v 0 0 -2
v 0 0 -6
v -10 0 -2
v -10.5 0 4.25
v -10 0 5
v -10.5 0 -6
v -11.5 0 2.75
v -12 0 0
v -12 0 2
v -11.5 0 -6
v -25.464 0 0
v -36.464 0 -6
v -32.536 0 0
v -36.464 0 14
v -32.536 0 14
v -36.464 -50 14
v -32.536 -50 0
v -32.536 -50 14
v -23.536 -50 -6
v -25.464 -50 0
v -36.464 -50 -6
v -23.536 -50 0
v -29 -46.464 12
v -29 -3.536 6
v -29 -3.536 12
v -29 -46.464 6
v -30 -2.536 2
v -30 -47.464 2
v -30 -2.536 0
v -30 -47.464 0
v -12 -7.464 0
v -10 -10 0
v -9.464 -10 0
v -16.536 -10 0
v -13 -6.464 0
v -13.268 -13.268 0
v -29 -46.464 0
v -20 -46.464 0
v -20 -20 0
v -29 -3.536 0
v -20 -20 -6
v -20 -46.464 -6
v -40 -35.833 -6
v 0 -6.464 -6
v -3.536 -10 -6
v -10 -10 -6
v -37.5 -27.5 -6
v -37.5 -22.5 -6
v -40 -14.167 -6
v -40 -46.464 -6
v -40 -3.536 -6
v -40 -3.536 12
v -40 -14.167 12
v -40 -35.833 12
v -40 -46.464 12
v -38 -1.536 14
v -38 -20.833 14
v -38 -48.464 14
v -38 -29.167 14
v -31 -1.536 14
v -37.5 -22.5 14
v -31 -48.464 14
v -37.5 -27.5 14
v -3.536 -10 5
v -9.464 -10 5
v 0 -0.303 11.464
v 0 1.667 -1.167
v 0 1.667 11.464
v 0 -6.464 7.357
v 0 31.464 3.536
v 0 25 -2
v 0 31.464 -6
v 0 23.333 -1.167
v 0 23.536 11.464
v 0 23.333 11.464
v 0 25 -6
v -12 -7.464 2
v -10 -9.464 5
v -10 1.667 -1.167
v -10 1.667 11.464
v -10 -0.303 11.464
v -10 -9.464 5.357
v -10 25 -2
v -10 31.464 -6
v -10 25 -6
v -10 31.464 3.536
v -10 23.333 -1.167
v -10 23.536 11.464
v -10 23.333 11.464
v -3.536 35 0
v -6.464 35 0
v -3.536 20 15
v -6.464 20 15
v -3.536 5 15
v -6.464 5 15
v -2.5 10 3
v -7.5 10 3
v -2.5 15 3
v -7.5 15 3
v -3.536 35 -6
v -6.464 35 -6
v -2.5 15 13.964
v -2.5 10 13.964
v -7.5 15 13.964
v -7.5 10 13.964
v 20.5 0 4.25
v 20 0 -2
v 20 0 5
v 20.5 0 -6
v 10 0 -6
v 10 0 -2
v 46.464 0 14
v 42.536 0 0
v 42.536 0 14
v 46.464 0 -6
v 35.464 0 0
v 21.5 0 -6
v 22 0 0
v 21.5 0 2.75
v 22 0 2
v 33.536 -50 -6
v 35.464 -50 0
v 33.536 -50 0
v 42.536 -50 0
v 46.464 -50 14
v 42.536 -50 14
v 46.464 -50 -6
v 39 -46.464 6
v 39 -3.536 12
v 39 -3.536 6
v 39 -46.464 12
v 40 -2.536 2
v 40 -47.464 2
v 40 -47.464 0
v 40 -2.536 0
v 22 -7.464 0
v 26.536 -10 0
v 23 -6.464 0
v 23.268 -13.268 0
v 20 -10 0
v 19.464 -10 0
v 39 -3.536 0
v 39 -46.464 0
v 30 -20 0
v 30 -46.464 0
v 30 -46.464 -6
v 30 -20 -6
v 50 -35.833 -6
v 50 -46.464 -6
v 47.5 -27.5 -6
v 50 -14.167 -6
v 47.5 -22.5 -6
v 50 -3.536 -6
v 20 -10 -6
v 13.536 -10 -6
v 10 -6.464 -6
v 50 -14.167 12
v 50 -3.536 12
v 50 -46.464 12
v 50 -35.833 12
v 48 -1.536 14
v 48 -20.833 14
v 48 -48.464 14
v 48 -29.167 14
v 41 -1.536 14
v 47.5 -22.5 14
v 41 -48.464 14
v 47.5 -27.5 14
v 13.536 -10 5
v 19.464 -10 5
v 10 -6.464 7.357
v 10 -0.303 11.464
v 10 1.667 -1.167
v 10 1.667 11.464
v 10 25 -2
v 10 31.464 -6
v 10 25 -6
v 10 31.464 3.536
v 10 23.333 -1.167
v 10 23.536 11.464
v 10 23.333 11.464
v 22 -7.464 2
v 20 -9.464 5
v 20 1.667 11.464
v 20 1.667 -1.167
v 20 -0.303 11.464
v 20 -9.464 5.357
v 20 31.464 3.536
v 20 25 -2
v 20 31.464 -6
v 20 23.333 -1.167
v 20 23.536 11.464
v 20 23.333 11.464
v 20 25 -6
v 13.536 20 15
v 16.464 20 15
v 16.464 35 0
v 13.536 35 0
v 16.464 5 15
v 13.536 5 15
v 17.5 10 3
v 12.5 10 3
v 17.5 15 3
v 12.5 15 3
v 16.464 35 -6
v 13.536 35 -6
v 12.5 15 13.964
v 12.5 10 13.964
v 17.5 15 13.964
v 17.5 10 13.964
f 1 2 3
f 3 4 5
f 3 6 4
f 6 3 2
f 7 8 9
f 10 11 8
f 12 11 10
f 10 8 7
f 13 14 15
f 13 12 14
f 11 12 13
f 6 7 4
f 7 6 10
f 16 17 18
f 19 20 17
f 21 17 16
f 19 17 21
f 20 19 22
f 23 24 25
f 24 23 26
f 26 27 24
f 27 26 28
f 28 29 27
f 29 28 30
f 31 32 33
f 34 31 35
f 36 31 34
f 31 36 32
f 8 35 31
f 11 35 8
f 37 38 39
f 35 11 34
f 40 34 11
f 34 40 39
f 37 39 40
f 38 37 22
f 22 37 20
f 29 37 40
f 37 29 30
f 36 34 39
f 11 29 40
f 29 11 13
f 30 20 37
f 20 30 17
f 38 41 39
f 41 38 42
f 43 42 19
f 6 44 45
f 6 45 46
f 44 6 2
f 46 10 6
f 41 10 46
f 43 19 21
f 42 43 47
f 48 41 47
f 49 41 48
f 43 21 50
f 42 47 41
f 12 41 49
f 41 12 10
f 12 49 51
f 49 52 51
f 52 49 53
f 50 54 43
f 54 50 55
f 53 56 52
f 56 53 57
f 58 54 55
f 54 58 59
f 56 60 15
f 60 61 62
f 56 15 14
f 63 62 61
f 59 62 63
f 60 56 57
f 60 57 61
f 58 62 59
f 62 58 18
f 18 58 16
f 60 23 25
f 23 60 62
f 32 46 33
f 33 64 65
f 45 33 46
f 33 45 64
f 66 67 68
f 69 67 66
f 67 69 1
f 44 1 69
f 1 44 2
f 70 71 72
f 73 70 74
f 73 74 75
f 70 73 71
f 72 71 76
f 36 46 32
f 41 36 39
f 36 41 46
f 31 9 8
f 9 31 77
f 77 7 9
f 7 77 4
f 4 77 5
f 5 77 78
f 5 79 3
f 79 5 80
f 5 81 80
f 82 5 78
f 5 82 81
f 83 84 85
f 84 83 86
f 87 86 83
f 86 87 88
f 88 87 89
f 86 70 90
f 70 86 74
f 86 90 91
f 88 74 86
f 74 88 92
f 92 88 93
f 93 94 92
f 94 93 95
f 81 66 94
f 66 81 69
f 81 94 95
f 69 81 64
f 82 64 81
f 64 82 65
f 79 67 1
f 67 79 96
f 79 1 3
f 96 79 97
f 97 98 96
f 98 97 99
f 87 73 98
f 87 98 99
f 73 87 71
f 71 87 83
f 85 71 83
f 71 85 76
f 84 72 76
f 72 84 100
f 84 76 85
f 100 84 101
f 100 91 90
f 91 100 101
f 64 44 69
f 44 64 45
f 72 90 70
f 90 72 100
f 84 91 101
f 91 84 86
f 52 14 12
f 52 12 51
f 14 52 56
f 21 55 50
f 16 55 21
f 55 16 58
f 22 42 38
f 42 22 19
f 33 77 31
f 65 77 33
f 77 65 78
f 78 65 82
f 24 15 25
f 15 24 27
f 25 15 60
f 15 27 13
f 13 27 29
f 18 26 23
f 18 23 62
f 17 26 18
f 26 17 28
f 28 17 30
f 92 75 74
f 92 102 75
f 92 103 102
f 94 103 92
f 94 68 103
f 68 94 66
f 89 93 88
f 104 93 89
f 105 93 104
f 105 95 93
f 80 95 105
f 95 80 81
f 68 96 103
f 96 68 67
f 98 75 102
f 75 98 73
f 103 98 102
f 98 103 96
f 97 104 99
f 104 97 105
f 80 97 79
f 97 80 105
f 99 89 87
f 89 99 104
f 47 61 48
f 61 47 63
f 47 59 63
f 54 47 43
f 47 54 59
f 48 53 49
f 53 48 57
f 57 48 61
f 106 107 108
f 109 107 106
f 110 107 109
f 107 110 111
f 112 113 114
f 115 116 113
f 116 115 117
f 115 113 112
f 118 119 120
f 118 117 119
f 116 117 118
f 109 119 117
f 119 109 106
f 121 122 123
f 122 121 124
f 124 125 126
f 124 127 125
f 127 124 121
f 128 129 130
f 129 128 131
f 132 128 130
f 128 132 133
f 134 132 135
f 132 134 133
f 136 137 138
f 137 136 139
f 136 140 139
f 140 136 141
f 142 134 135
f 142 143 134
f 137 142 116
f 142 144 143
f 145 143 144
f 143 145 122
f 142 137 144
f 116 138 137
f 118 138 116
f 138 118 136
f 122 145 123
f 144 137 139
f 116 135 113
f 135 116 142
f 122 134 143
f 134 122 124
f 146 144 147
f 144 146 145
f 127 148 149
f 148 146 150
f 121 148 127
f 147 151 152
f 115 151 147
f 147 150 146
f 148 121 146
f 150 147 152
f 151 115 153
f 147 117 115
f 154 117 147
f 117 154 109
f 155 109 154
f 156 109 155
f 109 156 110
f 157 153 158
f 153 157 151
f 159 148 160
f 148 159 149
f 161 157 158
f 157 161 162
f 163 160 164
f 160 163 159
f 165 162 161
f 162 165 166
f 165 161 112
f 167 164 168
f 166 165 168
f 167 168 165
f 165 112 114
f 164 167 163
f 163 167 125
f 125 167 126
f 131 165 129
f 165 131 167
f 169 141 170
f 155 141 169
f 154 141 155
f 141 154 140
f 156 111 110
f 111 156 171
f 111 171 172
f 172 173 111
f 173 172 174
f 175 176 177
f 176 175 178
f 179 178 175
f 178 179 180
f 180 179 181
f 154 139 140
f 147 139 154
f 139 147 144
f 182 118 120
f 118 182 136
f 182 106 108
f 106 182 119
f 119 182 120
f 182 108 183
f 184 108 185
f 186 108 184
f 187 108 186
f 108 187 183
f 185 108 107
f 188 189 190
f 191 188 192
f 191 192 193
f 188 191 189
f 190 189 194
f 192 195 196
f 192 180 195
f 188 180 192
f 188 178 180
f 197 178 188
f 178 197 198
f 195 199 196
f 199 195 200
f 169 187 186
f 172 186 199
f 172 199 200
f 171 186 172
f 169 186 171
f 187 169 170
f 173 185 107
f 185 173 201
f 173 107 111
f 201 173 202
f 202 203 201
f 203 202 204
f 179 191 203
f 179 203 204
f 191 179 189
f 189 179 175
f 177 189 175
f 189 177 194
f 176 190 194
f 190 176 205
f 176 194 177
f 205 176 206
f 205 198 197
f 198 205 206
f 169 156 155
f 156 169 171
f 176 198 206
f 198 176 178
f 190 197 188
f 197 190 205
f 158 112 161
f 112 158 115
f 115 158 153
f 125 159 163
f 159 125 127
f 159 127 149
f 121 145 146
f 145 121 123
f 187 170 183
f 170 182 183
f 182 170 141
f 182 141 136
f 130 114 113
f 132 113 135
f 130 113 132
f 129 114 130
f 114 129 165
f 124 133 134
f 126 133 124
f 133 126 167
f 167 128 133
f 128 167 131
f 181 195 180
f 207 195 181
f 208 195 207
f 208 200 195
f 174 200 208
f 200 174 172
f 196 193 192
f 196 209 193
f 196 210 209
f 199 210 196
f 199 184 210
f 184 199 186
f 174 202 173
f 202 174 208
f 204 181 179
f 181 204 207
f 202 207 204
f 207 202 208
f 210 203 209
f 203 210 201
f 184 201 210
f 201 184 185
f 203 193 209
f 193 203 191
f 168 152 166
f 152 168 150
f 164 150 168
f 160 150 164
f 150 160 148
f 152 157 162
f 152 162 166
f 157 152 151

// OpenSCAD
module start() {
    translate([-20,0,0]){
        translate([-20,0,-14])
        color("green")
        rotate([90,0,0])
        linear_extrude(50)
        polygon(points=[[2,0],[0,2],[0,20],[20,20],[20,14],[10,14],[10,12],[11,8],[11,2],[9,0]],convexity=10);

        color("red")
        rotate([0,0,-90])
        linear_extrude(6)
        polygon(points=[[0,0],[0,20],[10,20],[10,10],[20,0]],convexity=10);
    }

    color("yellow")
    rotate([90,180,0])
    linear_extrude(10)
    polygon(points=[[0,0],[0,5],[10,5],[12,2],[12,0]],convexity=10);

    color("blue")
    rotate([-90,0,90])
    linear_extrude(10)
    polygon(points=[[0,-2],[-10,5],[5,15],[20,15],[35,0],[35,-6],[25,-6],[25,-2],[15,3],[10,3]],convexity=10);
}

module wedge(t) {
    translate(t)
    rotate([0,0,45])
    cube([5,5,100], center=true);
}

module hwedge(t) {
    translate(t)
    rotate([90,0,0])
    rotate([0,0,45])
    cube([5,5,100], center=true);
}

module doublewedge(t) {
    translate(t)
    hull() {
        cube([7,5,100], center=true);
        cube([1,25,100], center=true);
    }
}


module final() {
    difference() {
    start();
    wedge([0,-10,0]);
    wedge([0,35,0]);
    wedge([-10,35,0]);
    wedge([-40,0,0]);
    wedge([-40,-50,0]);
    wedge([-20,-50,0]);
    wedge([-13,-10,-50]);
    wedge([-29,0,-50]);
    wedge([-29,-50,-50]);
    hwedge([0,0,-15]);
    hwedge([-10,0,-15]);
    doublewedge([1,12.5,0]);
    doublewedge([-11,12.5,0]);
    doublewedge([-41,-25,0]);
    }
}

if($preview) {
    final();
}else {
    mirror([0,0,1]) {
        final();
        translate([10,0,0])
            mirror([1,0,0])
            final();
    }
}
